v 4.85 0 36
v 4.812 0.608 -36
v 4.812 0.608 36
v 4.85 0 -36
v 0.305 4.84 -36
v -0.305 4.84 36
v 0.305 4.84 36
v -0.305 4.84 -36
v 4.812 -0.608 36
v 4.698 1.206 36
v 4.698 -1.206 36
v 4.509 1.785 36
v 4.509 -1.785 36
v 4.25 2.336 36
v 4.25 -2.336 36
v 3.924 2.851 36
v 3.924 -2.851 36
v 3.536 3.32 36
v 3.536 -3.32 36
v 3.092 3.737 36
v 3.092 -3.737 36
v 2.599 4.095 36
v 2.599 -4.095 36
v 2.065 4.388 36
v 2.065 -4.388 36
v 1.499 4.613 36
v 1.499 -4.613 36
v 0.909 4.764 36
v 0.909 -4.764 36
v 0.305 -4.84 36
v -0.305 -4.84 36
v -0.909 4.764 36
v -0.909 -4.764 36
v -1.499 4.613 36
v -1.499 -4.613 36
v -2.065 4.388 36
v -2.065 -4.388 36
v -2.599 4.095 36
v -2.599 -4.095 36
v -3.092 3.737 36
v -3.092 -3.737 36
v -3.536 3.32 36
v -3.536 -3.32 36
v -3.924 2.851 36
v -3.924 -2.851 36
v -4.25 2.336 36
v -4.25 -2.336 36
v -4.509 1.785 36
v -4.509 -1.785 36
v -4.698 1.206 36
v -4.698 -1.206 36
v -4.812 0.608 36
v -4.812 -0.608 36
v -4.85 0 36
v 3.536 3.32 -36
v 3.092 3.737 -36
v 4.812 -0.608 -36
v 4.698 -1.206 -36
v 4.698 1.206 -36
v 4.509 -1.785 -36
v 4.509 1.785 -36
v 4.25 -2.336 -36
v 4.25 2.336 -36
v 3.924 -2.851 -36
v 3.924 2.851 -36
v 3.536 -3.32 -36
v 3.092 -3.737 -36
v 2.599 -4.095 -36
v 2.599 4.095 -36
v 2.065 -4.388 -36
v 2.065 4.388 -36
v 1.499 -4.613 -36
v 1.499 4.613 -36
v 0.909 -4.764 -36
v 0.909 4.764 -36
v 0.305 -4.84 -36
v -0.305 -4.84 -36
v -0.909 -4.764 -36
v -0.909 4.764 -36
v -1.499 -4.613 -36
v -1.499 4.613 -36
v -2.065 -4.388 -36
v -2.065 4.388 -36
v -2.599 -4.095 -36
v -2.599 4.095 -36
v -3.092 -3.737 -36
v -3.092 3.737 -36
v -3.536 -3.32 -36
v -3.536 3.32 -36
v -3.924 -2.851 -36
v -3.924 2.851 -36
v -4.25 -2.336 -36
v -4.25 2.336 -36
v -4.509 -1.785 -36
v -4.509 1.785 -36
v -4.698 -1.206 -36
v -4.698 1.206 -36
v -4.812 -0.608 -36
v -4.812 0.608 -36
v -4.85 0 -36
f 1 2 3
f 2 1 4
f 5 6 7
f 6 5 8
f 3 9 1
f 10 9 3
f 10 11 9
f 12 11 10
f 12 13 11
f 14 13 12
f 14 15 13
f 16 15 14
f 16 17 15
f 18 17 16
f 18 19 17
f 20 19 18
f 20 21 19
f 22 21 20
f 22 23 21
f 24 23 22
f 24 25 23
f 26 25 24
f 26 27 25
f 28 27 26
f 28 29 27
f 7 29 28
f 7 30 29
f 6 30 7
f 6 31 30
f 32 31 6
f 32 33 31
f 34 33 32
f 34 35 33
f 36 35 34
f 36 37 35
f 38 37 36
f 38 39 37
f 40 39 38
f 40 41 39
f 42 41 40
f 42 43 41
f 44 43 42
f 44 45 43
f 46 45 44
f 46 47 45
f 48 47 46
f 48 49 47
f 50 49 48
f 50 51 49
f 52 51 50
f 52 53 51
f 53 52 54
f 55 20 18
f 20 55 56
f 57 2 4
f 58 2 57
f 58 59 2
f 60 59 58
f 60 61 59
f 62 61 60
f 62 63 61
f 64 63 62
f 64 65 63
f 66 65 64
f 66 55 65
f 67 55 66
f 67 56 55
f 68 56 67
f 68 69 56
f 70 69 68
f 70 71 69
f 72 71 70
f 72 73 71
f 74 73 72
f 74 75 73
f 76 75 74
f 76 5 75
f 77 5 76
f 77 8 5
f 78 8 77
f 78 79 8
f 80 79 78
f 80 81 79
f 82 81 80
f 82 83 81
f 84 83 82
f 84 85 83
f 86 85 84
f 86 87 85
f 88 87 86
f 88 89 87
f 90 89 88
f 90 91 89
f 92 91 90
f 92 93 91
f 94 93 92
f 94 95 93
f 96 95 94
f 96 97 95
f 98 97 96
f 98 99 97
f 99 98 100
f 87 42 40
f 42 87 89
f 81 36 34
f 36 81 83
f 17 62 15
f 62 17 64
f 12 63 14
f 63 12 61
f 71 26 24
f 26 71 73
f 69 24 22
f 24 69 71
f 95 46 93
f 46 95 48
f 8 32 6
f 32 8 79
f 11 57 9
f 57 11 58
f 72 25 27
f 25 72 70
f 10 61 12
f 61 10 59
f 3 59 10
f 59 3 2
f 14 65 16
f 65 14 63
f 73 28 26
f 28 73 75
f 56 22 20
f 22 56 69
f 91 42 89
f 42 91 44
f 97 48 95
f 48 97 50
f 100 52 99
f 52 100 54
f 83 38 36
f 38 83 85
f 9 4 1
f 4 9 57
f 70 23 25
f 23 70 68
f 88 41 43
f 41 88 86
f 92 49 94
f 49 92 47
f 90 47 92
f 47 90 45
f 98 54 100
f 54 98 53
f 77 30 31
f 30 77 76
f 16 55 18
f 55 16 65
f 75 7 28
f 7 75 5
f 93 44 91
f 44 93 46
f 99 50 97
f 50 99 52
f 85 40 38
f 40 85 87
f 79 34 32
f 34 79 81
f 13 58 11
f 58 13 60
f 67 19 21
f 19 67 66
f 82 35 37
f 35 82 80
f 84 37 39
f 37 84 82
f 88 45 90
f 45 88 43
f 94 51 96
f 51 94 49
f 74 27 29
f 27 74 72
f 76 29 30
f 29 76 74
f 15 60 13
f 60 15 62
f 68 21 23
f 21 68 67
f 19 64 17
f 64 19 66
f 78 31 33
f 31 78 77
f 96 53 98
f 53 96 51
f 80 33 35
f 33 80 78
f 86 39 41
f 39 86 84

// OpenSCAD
$fn = 50;


difference() {
	union() {
		translate(v = [0, 0, -36.0000000000]) {
			cylinder(h = 72, r = 4.8500000000);
		}
	}
	union() {
		translate(v = [0, 0, -100.0000000000]) {
			cylinder(h = 200, r = 0);
		}
	}
}
